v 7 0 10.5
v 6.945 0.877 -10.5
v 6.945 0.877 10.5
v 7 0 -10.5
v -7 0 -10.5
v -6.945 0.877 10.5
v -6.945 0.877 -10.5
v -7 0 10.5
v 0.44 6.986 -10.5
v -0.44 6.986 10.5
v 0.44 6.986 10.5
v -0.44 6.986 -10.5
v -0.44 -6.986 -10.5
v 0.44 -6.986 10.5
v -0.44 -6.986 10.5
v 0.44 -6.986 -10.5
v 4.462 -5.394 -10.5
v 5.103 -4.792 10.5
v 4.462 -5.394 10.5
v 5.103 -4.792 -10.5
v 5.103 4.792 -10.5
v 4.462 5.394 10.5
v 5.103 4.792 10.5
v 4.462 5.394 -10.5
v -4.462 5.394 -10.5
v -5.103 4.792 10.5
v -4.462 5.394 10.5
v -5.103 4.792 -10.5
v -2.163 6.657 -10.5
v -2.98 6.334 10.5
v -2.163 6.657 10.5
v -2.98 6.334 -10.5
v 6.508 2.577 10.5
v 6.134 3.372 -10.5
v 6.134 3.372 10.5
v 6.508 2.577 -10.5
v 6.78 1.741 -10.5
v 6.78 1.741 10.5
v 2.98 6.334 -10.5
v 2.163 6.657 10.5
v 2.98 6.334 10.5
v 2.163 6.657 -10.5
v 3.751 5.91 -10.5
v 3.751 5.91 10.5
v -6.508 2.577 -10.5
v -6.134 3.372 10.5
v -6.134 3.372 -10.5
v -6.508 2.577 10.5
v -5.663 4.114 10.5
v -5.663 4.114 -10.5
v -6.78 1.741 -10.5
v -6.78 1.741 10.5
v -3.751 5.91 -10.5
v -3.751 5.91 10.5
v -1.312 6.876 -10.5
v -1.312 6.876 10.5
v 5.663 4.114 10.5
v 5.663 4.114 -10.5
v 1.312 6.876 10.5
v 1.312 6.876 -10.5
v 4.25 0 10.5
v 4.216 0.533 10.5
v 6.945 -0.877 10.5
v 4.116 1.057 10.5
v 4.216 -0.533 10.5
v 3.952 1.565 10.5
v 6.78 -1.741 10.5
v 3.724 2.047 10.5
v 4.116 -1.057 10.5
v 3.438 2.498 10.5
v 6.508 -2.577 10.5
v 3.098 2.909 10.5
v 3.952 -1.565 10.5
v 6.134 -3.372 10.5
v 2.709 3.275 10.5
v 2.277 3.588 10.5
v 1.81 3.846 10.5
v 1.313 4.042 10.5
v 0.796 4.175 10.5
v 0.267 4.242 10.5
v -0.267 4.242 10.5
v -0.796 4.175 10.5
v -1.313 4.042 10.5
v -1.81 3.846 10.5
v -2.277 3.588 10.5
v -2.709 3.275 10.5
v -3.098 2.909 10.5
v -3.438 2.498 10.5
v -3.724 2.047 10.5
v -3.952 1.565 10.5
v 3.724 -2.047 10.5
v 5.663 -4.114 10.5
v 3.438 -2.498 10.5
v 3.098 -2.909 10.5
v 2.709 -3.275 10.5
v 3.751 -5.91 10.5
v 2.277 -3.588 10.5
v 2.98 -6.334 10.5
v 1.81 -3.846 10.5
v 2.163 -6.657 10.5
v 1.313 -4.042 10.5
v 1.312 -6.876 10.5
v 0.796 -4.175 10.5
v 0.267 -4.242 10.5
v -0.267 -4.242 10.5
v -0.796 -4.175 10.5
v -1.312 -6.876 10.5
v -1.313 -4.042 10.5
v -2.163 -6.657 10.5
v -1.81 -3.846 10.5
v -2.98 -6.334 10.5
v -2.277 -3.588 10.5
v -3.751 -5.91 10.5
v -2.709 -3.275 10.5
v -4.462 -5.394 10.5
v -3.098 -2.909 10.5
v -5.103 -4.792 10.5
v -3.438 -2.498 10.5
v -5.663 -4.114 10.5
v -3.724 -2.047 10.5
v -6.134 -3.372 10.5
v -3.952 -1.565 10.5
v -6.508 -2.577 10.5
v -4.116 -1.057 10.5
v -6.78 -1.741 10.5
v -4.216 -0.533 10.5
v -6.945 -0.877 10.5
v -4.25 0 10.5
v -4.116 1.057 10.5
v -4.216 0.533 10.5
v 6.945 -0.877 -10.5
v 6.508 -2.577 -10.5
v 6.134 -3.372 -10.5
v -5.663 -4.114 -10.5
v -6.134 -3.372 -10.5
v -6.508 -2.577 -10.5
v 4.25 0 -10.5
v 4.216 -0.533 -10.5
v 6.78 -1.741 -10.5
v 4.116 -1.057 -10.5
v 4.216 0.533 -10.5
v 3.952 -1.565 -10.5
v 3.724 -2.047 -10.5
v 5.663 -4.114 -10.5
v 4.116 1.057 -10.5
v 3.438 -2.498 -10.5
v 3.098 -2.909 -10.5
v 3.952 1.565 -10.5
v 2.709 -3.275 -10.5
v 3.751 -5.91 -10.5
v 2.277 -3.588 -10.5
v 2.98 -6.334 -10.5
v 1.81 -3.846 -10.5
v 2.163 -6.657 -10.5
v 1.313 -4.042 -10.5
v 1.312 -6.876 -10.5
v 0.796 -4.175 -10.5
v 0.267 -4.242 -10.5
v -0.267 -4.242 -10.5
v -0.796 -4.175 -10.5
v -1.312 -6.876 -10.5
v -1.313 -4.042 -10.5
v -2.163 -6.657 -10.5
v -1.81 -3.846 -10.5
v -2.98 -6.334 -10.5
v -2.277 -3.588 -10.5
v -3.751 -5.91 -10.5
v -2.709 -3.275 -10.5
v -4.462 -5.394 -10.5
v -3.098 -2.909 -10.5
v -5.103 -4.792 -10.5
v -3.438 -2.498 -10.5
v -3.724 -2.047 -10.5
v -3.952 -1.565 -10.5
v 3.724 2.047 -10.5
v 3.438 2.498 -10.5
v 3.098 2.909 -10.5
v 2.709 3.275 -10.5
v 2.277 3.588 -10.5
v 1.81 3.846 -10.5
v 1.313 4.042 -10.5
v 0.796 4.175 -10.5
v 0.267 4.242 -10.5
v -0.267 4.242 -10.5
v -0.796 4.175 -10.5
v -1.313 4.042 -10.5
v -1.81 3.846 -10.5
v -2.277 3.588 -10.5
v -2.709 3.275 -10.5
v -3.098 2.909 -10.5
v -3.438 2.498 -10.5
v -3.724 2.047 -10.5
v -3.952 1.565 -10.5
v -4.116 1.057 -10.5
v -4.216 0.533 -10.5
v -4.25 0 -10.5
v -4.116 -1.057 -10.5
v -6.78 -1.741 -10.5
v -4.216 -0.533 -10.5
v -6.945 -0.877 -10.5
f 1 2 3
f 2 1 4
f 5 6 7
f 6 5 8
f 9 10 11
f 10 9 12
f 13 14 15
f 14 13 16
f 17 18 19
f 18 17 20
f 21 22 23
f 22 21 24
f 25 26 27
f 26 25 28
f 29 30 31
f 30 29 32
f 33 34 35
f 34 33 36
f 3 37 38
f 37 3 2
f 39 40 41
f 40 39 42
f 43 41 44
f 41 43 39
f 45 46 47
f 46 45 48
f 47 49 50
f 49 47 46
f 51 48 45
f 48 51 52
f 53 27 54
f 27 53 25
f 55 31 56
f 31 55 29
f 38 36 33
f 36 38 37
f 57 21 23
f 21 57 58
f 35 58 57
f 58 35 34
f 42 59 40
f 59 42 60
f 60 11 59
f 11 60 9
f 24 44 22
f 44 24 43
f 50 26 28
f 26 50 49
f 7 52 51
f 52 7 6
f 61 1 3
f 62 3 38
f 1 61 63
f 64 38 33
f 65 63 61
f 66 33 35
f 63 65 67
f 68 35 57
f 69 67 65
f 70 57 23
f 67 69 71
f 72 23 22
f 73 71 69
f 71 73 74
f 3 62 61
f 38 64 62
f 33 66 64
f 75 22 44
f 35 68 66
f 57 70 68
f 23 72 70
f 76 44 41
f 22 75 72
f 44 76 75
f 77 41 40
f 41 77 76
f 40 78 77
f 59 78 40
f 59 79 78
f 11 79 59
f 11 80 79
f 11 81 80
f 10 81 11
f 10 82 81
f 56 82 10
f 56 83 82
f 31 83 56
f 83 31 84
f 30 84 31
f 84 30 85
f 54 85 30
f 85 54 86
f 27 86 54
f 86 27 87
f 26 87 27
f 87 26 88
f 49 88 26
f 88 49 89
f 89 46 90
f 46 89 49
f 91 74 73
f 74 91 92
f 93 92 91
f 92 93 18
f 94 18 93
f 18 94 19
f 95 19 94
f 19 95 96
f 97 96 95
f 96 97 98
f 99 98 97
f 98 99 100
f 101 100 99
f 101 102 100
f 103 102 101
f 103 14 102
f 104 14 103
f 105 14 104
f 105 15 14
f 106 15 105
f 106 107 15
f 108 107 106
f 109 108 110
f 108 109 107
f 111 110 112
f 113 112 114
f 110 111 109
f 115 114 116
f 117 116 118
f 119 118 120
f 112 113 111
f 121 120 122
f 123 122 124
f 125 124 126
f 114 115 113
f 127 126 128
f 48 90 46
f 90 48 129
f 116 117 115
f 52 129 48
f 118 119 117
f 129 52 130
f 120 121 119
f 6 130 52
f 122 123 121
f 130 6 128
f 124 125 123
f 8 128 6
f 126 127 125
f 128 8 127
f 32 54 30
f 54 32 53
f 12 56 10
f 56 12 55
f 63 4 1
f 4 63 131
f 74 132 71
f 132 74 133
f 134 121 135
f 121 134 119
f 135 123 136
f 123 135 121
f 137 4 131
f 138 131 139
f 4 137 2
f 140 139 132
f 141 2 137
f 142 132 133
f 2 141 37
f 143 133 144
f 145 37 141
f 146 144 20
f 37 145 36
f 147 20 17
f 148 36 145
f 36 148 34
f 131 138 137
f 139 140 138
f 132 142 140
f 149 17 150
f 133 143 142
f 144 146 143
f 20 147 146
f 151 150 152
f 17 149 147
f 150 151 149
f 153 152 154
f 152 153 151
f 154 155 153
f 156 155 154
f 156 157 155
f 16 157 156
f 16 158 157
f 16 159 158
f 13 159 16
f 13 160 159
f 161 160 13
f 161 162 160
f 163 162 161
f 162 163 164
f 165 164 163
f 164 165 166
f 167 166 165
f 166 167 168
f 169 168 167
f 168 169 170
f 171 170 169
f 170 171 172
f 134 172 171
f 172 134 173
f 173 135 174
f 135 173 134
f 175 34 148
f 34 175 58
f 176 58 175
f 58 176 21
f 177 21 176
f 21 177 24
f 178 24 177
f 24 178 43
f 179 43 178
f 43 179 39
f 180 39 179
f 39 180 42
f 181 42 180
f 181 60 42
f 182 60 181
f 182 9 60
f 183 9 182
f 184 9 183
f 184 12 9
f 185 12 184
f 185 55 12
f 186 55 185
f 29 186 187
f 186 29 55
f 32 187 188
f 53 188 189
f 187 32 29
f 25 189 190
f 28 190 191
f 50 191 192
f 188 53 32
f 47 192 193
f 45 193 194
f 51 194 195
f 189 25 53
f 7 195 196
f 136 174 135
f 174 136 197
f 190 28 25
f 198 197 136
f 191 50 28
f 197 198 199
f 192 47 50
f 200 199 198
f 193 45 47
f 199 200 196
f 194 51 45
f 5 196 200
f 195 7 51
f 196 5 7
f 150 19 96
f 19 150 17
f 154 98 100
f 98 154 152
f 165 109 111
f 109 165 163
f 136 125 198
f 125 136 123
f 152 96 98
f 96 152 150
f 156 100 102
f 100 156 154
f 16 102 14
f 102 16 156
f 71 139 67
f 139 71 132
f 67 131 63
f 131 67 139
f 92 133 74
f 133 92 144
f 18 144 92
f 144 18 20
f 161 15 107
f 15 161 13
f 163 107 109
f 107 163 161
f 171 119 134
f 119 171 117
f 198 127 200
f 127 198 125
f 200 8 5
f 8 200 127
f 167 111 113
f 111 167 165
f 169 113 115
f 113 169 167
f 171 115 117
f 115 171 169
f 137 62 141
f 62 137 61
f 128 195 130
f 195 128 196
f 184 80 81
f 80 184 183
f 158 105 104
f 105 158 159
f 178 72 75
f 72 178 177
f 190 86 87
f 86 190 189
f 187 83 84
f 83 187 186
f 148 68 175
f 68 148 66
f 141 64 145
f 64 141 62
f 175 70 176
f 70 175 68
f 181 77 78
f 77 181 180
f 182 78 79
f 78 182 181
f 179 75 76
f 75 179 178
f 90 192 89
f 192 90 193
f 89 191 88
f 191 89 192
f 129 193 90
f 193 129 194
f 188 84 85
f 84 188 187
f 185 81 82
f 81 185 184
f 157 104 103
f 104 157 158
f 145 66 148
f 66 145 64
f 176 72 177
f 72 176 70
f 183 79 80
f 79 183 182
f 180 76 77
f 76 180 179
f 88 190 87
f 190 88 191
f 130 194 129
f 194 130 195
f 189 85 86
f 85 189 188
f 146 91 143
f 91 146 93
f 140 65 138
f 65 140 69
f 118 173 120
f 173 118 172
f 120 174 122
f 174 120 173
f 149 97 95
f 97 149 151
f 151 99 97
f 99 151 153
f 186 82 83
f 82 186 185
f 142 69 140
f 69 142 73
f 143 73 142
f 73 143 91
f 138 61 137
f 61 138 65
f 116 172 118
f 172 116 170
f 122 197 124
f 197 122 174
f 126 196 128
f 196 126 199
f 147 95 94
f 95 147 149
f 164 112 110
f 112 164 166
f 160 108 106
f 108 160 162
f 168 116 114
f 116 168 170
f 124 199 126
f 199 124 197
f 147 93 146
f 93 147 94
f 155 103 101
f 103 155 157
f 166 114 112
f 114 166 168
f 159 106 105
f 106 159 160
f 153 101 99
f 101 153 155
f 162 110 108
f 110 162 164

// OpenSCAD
$fn = 50;


difference() {
	union() {
		translate(v = [0, 0, -10.5000000000]) {
			cylinder(h = 21, r = 7.0000000000);
		}
	}
	union() {
		translate(v = [0, 0, -100.0000000000]) {
			cylinder(h = 200, r = 4.2500000000);
		}
	}
}
